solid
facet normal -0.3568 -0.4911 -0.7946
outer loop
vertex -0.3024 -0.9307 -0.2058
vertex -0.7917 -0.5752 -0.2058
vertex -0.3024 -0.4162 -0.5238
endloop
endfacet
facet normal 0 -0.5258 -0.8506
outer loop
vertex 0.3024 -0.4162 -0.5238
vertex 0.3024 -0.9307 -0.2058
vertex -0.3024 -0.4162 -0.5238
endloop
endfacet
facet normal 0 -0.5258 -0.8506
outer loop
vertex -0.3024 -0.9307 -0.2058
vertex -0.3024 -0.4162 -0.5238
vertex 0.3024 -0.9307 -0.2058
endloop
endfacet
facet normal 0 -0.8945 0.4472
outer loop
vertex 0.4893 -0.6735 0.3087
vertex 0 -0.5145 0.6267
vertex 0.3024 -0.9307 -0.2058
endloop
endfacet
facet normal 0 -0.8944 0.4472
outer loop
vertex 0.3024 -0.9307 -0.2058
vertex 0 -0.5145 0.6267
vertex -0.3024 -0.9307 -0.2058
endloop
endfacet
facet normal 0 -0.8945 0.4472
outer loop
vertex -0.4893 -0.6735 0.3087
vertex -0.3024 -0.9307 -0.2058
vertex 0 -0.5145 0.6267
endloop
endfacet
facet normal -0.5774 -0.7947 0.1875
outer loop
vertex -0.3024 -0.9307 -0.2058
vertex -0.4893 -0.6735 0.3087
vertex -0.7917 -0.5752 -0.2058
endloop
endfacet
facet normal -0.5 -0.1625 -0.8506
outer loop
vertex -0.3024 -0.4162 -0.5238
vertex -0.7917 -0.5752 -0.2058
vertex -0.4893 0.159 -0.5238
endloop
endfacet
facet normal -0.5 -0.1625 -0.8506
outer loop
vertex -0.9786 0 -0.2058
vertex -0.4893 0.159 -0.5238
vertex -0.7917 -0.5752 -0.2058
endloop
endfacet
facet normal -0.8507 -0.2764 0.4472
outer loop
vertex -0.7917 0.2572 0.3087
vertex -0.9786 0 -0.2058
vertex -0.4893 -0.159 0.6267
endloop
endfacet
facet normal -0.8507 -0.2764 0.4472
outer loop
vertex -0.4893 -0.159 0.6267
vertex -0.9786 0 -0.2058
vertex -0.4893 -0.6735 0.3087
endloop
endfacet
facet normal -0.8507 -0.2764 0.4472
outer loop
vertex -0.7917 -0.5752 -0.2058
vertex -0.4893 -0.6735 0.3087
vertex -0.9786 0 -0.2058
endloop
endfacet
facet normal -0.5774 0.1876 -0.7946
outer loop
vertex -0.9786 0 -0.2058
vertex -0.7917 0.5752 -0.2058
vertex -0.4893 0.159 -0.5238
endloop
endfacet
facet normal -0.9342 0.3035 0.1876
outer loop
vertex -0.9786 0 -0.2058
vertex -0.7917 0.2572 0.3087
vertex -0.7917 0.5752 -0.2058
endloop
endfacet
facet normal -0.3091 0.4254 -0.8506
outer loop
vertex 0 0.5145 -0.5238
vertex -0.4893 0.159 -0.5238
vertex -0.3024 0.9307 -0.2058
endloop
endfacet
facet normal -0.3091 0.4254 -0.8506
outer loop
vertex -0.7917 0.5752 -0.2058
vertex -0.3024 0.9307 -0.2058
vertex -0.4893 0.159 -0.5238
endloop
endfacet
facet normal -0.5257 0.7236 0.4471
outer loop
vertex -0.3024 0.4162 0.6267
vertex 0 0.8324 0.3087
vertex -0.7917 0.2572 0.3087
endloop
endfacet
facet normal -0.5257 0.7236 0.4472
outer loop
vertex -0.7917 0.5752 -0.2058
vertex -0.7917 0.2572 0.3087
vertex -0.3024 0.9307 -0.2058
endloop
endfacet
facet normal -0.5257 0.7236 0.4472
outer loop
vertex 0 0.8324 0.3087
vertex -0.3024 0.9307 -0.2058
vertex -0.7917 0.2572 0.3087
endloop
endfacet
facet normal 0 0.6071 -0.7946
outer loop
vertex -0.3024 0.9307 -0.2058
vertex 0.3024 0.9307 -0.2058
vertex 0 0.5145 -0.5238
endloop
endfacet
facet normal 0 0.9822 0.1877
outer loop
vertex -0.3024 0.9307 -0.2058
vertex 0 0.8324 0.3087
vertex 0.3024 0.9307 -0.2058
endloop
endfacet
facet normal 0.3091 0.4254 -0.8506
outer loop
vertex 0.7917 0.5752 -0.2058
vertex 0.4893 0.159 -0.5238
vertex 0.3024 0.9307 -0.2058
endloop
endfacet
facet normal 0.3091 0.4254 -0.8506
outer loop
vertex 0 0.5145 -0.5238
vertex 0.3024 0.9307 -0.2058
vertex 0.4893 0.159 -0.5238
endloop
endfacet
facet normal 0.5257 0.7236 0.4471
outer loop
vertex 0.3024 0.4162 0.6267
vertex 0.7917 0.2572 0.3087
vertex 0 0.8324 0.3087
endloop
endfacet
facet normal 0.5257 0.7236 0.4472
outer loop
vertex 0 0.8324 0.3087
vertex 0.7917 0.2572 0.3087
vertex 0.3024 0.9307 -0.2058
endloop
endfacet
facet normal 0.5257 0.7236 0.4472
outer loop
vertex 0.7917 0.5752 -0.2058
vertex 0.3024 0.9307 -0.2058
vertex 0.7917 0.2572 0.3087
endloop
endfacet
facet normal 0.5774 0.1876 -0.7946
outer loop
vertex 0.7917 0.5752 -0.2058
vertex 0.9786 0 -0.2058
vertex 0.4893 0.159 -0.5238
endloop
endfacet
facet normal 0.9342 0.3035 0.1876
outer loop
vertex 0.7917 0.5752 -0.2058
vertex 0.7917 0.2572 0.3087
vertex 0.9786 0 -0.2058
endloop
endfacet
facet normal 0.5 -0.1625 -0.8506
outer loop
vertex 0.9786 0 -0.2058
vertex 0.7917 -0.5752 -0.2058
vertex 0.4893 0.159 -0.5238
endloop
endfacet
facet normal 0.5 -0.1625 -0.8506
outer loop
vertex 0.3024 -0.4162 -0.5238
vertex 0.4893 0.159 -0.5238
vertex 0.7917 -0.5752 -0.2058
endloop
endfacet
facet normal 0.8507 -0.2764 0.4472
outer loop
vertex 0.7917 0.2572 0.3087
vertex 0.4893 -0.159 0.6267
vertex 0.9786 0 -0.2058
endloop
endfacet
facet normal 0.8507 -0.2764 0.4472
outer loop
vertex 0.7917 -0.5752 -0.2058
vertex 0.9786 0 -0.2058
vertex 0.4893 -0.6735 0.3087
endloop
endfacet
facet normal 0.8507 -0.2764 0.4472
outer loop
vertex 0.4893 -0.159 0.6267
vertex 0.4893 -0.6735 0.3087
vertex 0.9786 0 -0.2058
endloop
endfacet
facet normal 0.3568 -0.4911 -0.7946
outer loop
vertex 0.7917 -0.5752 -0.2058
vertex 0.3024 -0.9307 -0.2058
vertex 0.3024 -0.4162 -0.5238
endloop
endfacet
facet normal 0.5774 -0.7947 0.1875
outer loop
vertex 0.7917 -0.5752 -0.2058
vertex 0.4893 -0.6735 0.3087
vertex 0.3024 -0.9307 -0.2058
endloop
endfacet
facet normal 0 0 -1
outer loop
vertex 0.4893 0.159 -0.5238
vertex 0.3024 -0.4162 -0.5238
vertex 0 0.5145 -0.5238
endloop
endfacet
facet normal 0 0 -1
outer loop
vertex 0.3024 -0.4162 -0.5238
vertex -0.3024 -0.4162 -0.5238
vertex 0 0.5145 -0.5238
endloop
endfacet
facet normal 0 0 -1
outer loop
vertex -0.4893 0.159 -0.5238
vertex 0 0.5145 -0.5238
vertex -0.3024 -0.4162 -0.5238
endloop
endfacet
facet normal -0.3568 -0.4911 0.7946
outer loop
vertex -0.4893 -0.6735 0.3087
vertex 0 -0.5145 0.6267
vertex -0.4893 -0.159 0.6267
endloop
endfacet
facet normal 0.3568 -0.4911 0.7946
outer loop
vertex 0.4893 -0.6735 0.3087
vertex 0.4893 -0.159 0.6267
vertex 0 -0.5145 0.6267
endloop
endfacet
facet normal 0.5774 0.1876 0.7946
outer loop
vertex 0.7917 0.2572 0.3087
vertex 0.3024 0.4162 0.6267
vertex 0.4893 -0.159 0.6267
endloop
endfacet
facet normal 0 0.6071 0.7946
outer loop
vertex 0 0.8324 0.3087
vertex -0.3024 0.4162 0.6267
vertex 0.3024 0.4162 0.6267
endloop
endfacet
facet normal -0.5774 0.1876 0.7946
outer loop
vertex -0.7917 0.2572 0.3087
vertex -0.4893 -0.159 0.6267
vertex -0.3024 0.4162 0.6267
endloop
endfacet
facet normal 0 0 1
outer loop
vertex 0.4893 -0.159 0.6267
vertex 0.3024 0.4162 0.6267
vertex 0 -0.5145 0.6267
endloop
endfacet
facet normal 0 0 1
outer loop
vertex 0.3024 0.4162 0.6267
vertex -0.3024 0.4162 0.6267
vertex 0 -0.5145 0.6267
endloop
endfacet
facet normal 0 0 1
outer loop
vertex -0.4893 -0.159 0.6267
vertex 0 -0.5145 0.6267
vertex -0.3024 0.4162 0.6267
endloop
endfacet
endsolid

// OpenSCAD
polyhedron( points = [[-0.302402762345269, -0.930700005229077, -0.205791323758367], [-0.791700711089449, -0.575204236546942, -0.205791323758367], [-0.978595897197169, -9.27674739441259e-12, -0.205791323758367], [-0.791700711912964, 0.575204236511603, -0.205791323758367], [-0.302402763677745, 0.930700005149802, -0.205791323758367], [0.30240276191855, 0.930700005149807, -0.205791323758367], [0.791700710694648, 0.575204236511603, -0.205791323758367], [0.97859589685402, -9.27674739441259e-12, -0.205791323758367], [0.79170071162147, -0.575204236546939, -0.205791323758367], [0.302402763418169, -0.930700005229077, -0.205791323758367], [-0.302402762318115, -0.416221695148577, -0.523756404976641], [-0.489297948020853, 0.158982540613845, -0.523756405309573], [5.98323247458454e-10, 0.514478309048128, -0.523756405309573], [0.489297949131992, 0.158982540496156, -0.523756405309574], [0.302402763243136, -0.41622169527437, -0.523756404898896], [-0.489297948067057, -0.673460850209188, 0.308686985578888], [0.489297949025685, -0.673460850337897, 0.308686985321465], [0.791700710864979, 0.257239154737842, 0.308686985603175], [-8.20525742024136e-10, 0.832443391184965, 0.308686985603175], [-0.791700711609203, 0.257239154708025, 0.308686985603175], [4.59728415772339e-10, -0.514478309284332, 0.626652066994421], [0.489297948374927, -0.158982540877121, 0.626652067261908], [0.302402762247196, 0.416221695529608, 0.626652067261908], [-0.302402763230757, 0.416221695524424, 0.626652067261908], [-0.489297948163716, -0.158982540463736, 0.626652066897906]], faces = [[0, 1, 10], [0, 10, 14, 9], [0, 9, 16, 20, 15], [0, 15, 1], [1, 2, 11, 10], [1, 15, 24, 19, 2], [2, 3, 11], [2, 19, 3], [3, 4, 12, 11], [3, 19, 23, 18, 4], [4, 5, 12], [4, 18, 5], [5, 6, 13, 12], [5, 18, 22, 17, 6], [6, 7, 13], [6, 17, 7], [7, 8, 14, 13], [7, 17, 21, 16, 8], [8, 9, 14], [8, 16, 9], [10, 11, 12, 13, 14], [15, 20, 24], [16, 21, 20], [17, 22, 21], [18, 23, 22], [19, 24, 23], [20, 21, 22, 23, 24]]);
